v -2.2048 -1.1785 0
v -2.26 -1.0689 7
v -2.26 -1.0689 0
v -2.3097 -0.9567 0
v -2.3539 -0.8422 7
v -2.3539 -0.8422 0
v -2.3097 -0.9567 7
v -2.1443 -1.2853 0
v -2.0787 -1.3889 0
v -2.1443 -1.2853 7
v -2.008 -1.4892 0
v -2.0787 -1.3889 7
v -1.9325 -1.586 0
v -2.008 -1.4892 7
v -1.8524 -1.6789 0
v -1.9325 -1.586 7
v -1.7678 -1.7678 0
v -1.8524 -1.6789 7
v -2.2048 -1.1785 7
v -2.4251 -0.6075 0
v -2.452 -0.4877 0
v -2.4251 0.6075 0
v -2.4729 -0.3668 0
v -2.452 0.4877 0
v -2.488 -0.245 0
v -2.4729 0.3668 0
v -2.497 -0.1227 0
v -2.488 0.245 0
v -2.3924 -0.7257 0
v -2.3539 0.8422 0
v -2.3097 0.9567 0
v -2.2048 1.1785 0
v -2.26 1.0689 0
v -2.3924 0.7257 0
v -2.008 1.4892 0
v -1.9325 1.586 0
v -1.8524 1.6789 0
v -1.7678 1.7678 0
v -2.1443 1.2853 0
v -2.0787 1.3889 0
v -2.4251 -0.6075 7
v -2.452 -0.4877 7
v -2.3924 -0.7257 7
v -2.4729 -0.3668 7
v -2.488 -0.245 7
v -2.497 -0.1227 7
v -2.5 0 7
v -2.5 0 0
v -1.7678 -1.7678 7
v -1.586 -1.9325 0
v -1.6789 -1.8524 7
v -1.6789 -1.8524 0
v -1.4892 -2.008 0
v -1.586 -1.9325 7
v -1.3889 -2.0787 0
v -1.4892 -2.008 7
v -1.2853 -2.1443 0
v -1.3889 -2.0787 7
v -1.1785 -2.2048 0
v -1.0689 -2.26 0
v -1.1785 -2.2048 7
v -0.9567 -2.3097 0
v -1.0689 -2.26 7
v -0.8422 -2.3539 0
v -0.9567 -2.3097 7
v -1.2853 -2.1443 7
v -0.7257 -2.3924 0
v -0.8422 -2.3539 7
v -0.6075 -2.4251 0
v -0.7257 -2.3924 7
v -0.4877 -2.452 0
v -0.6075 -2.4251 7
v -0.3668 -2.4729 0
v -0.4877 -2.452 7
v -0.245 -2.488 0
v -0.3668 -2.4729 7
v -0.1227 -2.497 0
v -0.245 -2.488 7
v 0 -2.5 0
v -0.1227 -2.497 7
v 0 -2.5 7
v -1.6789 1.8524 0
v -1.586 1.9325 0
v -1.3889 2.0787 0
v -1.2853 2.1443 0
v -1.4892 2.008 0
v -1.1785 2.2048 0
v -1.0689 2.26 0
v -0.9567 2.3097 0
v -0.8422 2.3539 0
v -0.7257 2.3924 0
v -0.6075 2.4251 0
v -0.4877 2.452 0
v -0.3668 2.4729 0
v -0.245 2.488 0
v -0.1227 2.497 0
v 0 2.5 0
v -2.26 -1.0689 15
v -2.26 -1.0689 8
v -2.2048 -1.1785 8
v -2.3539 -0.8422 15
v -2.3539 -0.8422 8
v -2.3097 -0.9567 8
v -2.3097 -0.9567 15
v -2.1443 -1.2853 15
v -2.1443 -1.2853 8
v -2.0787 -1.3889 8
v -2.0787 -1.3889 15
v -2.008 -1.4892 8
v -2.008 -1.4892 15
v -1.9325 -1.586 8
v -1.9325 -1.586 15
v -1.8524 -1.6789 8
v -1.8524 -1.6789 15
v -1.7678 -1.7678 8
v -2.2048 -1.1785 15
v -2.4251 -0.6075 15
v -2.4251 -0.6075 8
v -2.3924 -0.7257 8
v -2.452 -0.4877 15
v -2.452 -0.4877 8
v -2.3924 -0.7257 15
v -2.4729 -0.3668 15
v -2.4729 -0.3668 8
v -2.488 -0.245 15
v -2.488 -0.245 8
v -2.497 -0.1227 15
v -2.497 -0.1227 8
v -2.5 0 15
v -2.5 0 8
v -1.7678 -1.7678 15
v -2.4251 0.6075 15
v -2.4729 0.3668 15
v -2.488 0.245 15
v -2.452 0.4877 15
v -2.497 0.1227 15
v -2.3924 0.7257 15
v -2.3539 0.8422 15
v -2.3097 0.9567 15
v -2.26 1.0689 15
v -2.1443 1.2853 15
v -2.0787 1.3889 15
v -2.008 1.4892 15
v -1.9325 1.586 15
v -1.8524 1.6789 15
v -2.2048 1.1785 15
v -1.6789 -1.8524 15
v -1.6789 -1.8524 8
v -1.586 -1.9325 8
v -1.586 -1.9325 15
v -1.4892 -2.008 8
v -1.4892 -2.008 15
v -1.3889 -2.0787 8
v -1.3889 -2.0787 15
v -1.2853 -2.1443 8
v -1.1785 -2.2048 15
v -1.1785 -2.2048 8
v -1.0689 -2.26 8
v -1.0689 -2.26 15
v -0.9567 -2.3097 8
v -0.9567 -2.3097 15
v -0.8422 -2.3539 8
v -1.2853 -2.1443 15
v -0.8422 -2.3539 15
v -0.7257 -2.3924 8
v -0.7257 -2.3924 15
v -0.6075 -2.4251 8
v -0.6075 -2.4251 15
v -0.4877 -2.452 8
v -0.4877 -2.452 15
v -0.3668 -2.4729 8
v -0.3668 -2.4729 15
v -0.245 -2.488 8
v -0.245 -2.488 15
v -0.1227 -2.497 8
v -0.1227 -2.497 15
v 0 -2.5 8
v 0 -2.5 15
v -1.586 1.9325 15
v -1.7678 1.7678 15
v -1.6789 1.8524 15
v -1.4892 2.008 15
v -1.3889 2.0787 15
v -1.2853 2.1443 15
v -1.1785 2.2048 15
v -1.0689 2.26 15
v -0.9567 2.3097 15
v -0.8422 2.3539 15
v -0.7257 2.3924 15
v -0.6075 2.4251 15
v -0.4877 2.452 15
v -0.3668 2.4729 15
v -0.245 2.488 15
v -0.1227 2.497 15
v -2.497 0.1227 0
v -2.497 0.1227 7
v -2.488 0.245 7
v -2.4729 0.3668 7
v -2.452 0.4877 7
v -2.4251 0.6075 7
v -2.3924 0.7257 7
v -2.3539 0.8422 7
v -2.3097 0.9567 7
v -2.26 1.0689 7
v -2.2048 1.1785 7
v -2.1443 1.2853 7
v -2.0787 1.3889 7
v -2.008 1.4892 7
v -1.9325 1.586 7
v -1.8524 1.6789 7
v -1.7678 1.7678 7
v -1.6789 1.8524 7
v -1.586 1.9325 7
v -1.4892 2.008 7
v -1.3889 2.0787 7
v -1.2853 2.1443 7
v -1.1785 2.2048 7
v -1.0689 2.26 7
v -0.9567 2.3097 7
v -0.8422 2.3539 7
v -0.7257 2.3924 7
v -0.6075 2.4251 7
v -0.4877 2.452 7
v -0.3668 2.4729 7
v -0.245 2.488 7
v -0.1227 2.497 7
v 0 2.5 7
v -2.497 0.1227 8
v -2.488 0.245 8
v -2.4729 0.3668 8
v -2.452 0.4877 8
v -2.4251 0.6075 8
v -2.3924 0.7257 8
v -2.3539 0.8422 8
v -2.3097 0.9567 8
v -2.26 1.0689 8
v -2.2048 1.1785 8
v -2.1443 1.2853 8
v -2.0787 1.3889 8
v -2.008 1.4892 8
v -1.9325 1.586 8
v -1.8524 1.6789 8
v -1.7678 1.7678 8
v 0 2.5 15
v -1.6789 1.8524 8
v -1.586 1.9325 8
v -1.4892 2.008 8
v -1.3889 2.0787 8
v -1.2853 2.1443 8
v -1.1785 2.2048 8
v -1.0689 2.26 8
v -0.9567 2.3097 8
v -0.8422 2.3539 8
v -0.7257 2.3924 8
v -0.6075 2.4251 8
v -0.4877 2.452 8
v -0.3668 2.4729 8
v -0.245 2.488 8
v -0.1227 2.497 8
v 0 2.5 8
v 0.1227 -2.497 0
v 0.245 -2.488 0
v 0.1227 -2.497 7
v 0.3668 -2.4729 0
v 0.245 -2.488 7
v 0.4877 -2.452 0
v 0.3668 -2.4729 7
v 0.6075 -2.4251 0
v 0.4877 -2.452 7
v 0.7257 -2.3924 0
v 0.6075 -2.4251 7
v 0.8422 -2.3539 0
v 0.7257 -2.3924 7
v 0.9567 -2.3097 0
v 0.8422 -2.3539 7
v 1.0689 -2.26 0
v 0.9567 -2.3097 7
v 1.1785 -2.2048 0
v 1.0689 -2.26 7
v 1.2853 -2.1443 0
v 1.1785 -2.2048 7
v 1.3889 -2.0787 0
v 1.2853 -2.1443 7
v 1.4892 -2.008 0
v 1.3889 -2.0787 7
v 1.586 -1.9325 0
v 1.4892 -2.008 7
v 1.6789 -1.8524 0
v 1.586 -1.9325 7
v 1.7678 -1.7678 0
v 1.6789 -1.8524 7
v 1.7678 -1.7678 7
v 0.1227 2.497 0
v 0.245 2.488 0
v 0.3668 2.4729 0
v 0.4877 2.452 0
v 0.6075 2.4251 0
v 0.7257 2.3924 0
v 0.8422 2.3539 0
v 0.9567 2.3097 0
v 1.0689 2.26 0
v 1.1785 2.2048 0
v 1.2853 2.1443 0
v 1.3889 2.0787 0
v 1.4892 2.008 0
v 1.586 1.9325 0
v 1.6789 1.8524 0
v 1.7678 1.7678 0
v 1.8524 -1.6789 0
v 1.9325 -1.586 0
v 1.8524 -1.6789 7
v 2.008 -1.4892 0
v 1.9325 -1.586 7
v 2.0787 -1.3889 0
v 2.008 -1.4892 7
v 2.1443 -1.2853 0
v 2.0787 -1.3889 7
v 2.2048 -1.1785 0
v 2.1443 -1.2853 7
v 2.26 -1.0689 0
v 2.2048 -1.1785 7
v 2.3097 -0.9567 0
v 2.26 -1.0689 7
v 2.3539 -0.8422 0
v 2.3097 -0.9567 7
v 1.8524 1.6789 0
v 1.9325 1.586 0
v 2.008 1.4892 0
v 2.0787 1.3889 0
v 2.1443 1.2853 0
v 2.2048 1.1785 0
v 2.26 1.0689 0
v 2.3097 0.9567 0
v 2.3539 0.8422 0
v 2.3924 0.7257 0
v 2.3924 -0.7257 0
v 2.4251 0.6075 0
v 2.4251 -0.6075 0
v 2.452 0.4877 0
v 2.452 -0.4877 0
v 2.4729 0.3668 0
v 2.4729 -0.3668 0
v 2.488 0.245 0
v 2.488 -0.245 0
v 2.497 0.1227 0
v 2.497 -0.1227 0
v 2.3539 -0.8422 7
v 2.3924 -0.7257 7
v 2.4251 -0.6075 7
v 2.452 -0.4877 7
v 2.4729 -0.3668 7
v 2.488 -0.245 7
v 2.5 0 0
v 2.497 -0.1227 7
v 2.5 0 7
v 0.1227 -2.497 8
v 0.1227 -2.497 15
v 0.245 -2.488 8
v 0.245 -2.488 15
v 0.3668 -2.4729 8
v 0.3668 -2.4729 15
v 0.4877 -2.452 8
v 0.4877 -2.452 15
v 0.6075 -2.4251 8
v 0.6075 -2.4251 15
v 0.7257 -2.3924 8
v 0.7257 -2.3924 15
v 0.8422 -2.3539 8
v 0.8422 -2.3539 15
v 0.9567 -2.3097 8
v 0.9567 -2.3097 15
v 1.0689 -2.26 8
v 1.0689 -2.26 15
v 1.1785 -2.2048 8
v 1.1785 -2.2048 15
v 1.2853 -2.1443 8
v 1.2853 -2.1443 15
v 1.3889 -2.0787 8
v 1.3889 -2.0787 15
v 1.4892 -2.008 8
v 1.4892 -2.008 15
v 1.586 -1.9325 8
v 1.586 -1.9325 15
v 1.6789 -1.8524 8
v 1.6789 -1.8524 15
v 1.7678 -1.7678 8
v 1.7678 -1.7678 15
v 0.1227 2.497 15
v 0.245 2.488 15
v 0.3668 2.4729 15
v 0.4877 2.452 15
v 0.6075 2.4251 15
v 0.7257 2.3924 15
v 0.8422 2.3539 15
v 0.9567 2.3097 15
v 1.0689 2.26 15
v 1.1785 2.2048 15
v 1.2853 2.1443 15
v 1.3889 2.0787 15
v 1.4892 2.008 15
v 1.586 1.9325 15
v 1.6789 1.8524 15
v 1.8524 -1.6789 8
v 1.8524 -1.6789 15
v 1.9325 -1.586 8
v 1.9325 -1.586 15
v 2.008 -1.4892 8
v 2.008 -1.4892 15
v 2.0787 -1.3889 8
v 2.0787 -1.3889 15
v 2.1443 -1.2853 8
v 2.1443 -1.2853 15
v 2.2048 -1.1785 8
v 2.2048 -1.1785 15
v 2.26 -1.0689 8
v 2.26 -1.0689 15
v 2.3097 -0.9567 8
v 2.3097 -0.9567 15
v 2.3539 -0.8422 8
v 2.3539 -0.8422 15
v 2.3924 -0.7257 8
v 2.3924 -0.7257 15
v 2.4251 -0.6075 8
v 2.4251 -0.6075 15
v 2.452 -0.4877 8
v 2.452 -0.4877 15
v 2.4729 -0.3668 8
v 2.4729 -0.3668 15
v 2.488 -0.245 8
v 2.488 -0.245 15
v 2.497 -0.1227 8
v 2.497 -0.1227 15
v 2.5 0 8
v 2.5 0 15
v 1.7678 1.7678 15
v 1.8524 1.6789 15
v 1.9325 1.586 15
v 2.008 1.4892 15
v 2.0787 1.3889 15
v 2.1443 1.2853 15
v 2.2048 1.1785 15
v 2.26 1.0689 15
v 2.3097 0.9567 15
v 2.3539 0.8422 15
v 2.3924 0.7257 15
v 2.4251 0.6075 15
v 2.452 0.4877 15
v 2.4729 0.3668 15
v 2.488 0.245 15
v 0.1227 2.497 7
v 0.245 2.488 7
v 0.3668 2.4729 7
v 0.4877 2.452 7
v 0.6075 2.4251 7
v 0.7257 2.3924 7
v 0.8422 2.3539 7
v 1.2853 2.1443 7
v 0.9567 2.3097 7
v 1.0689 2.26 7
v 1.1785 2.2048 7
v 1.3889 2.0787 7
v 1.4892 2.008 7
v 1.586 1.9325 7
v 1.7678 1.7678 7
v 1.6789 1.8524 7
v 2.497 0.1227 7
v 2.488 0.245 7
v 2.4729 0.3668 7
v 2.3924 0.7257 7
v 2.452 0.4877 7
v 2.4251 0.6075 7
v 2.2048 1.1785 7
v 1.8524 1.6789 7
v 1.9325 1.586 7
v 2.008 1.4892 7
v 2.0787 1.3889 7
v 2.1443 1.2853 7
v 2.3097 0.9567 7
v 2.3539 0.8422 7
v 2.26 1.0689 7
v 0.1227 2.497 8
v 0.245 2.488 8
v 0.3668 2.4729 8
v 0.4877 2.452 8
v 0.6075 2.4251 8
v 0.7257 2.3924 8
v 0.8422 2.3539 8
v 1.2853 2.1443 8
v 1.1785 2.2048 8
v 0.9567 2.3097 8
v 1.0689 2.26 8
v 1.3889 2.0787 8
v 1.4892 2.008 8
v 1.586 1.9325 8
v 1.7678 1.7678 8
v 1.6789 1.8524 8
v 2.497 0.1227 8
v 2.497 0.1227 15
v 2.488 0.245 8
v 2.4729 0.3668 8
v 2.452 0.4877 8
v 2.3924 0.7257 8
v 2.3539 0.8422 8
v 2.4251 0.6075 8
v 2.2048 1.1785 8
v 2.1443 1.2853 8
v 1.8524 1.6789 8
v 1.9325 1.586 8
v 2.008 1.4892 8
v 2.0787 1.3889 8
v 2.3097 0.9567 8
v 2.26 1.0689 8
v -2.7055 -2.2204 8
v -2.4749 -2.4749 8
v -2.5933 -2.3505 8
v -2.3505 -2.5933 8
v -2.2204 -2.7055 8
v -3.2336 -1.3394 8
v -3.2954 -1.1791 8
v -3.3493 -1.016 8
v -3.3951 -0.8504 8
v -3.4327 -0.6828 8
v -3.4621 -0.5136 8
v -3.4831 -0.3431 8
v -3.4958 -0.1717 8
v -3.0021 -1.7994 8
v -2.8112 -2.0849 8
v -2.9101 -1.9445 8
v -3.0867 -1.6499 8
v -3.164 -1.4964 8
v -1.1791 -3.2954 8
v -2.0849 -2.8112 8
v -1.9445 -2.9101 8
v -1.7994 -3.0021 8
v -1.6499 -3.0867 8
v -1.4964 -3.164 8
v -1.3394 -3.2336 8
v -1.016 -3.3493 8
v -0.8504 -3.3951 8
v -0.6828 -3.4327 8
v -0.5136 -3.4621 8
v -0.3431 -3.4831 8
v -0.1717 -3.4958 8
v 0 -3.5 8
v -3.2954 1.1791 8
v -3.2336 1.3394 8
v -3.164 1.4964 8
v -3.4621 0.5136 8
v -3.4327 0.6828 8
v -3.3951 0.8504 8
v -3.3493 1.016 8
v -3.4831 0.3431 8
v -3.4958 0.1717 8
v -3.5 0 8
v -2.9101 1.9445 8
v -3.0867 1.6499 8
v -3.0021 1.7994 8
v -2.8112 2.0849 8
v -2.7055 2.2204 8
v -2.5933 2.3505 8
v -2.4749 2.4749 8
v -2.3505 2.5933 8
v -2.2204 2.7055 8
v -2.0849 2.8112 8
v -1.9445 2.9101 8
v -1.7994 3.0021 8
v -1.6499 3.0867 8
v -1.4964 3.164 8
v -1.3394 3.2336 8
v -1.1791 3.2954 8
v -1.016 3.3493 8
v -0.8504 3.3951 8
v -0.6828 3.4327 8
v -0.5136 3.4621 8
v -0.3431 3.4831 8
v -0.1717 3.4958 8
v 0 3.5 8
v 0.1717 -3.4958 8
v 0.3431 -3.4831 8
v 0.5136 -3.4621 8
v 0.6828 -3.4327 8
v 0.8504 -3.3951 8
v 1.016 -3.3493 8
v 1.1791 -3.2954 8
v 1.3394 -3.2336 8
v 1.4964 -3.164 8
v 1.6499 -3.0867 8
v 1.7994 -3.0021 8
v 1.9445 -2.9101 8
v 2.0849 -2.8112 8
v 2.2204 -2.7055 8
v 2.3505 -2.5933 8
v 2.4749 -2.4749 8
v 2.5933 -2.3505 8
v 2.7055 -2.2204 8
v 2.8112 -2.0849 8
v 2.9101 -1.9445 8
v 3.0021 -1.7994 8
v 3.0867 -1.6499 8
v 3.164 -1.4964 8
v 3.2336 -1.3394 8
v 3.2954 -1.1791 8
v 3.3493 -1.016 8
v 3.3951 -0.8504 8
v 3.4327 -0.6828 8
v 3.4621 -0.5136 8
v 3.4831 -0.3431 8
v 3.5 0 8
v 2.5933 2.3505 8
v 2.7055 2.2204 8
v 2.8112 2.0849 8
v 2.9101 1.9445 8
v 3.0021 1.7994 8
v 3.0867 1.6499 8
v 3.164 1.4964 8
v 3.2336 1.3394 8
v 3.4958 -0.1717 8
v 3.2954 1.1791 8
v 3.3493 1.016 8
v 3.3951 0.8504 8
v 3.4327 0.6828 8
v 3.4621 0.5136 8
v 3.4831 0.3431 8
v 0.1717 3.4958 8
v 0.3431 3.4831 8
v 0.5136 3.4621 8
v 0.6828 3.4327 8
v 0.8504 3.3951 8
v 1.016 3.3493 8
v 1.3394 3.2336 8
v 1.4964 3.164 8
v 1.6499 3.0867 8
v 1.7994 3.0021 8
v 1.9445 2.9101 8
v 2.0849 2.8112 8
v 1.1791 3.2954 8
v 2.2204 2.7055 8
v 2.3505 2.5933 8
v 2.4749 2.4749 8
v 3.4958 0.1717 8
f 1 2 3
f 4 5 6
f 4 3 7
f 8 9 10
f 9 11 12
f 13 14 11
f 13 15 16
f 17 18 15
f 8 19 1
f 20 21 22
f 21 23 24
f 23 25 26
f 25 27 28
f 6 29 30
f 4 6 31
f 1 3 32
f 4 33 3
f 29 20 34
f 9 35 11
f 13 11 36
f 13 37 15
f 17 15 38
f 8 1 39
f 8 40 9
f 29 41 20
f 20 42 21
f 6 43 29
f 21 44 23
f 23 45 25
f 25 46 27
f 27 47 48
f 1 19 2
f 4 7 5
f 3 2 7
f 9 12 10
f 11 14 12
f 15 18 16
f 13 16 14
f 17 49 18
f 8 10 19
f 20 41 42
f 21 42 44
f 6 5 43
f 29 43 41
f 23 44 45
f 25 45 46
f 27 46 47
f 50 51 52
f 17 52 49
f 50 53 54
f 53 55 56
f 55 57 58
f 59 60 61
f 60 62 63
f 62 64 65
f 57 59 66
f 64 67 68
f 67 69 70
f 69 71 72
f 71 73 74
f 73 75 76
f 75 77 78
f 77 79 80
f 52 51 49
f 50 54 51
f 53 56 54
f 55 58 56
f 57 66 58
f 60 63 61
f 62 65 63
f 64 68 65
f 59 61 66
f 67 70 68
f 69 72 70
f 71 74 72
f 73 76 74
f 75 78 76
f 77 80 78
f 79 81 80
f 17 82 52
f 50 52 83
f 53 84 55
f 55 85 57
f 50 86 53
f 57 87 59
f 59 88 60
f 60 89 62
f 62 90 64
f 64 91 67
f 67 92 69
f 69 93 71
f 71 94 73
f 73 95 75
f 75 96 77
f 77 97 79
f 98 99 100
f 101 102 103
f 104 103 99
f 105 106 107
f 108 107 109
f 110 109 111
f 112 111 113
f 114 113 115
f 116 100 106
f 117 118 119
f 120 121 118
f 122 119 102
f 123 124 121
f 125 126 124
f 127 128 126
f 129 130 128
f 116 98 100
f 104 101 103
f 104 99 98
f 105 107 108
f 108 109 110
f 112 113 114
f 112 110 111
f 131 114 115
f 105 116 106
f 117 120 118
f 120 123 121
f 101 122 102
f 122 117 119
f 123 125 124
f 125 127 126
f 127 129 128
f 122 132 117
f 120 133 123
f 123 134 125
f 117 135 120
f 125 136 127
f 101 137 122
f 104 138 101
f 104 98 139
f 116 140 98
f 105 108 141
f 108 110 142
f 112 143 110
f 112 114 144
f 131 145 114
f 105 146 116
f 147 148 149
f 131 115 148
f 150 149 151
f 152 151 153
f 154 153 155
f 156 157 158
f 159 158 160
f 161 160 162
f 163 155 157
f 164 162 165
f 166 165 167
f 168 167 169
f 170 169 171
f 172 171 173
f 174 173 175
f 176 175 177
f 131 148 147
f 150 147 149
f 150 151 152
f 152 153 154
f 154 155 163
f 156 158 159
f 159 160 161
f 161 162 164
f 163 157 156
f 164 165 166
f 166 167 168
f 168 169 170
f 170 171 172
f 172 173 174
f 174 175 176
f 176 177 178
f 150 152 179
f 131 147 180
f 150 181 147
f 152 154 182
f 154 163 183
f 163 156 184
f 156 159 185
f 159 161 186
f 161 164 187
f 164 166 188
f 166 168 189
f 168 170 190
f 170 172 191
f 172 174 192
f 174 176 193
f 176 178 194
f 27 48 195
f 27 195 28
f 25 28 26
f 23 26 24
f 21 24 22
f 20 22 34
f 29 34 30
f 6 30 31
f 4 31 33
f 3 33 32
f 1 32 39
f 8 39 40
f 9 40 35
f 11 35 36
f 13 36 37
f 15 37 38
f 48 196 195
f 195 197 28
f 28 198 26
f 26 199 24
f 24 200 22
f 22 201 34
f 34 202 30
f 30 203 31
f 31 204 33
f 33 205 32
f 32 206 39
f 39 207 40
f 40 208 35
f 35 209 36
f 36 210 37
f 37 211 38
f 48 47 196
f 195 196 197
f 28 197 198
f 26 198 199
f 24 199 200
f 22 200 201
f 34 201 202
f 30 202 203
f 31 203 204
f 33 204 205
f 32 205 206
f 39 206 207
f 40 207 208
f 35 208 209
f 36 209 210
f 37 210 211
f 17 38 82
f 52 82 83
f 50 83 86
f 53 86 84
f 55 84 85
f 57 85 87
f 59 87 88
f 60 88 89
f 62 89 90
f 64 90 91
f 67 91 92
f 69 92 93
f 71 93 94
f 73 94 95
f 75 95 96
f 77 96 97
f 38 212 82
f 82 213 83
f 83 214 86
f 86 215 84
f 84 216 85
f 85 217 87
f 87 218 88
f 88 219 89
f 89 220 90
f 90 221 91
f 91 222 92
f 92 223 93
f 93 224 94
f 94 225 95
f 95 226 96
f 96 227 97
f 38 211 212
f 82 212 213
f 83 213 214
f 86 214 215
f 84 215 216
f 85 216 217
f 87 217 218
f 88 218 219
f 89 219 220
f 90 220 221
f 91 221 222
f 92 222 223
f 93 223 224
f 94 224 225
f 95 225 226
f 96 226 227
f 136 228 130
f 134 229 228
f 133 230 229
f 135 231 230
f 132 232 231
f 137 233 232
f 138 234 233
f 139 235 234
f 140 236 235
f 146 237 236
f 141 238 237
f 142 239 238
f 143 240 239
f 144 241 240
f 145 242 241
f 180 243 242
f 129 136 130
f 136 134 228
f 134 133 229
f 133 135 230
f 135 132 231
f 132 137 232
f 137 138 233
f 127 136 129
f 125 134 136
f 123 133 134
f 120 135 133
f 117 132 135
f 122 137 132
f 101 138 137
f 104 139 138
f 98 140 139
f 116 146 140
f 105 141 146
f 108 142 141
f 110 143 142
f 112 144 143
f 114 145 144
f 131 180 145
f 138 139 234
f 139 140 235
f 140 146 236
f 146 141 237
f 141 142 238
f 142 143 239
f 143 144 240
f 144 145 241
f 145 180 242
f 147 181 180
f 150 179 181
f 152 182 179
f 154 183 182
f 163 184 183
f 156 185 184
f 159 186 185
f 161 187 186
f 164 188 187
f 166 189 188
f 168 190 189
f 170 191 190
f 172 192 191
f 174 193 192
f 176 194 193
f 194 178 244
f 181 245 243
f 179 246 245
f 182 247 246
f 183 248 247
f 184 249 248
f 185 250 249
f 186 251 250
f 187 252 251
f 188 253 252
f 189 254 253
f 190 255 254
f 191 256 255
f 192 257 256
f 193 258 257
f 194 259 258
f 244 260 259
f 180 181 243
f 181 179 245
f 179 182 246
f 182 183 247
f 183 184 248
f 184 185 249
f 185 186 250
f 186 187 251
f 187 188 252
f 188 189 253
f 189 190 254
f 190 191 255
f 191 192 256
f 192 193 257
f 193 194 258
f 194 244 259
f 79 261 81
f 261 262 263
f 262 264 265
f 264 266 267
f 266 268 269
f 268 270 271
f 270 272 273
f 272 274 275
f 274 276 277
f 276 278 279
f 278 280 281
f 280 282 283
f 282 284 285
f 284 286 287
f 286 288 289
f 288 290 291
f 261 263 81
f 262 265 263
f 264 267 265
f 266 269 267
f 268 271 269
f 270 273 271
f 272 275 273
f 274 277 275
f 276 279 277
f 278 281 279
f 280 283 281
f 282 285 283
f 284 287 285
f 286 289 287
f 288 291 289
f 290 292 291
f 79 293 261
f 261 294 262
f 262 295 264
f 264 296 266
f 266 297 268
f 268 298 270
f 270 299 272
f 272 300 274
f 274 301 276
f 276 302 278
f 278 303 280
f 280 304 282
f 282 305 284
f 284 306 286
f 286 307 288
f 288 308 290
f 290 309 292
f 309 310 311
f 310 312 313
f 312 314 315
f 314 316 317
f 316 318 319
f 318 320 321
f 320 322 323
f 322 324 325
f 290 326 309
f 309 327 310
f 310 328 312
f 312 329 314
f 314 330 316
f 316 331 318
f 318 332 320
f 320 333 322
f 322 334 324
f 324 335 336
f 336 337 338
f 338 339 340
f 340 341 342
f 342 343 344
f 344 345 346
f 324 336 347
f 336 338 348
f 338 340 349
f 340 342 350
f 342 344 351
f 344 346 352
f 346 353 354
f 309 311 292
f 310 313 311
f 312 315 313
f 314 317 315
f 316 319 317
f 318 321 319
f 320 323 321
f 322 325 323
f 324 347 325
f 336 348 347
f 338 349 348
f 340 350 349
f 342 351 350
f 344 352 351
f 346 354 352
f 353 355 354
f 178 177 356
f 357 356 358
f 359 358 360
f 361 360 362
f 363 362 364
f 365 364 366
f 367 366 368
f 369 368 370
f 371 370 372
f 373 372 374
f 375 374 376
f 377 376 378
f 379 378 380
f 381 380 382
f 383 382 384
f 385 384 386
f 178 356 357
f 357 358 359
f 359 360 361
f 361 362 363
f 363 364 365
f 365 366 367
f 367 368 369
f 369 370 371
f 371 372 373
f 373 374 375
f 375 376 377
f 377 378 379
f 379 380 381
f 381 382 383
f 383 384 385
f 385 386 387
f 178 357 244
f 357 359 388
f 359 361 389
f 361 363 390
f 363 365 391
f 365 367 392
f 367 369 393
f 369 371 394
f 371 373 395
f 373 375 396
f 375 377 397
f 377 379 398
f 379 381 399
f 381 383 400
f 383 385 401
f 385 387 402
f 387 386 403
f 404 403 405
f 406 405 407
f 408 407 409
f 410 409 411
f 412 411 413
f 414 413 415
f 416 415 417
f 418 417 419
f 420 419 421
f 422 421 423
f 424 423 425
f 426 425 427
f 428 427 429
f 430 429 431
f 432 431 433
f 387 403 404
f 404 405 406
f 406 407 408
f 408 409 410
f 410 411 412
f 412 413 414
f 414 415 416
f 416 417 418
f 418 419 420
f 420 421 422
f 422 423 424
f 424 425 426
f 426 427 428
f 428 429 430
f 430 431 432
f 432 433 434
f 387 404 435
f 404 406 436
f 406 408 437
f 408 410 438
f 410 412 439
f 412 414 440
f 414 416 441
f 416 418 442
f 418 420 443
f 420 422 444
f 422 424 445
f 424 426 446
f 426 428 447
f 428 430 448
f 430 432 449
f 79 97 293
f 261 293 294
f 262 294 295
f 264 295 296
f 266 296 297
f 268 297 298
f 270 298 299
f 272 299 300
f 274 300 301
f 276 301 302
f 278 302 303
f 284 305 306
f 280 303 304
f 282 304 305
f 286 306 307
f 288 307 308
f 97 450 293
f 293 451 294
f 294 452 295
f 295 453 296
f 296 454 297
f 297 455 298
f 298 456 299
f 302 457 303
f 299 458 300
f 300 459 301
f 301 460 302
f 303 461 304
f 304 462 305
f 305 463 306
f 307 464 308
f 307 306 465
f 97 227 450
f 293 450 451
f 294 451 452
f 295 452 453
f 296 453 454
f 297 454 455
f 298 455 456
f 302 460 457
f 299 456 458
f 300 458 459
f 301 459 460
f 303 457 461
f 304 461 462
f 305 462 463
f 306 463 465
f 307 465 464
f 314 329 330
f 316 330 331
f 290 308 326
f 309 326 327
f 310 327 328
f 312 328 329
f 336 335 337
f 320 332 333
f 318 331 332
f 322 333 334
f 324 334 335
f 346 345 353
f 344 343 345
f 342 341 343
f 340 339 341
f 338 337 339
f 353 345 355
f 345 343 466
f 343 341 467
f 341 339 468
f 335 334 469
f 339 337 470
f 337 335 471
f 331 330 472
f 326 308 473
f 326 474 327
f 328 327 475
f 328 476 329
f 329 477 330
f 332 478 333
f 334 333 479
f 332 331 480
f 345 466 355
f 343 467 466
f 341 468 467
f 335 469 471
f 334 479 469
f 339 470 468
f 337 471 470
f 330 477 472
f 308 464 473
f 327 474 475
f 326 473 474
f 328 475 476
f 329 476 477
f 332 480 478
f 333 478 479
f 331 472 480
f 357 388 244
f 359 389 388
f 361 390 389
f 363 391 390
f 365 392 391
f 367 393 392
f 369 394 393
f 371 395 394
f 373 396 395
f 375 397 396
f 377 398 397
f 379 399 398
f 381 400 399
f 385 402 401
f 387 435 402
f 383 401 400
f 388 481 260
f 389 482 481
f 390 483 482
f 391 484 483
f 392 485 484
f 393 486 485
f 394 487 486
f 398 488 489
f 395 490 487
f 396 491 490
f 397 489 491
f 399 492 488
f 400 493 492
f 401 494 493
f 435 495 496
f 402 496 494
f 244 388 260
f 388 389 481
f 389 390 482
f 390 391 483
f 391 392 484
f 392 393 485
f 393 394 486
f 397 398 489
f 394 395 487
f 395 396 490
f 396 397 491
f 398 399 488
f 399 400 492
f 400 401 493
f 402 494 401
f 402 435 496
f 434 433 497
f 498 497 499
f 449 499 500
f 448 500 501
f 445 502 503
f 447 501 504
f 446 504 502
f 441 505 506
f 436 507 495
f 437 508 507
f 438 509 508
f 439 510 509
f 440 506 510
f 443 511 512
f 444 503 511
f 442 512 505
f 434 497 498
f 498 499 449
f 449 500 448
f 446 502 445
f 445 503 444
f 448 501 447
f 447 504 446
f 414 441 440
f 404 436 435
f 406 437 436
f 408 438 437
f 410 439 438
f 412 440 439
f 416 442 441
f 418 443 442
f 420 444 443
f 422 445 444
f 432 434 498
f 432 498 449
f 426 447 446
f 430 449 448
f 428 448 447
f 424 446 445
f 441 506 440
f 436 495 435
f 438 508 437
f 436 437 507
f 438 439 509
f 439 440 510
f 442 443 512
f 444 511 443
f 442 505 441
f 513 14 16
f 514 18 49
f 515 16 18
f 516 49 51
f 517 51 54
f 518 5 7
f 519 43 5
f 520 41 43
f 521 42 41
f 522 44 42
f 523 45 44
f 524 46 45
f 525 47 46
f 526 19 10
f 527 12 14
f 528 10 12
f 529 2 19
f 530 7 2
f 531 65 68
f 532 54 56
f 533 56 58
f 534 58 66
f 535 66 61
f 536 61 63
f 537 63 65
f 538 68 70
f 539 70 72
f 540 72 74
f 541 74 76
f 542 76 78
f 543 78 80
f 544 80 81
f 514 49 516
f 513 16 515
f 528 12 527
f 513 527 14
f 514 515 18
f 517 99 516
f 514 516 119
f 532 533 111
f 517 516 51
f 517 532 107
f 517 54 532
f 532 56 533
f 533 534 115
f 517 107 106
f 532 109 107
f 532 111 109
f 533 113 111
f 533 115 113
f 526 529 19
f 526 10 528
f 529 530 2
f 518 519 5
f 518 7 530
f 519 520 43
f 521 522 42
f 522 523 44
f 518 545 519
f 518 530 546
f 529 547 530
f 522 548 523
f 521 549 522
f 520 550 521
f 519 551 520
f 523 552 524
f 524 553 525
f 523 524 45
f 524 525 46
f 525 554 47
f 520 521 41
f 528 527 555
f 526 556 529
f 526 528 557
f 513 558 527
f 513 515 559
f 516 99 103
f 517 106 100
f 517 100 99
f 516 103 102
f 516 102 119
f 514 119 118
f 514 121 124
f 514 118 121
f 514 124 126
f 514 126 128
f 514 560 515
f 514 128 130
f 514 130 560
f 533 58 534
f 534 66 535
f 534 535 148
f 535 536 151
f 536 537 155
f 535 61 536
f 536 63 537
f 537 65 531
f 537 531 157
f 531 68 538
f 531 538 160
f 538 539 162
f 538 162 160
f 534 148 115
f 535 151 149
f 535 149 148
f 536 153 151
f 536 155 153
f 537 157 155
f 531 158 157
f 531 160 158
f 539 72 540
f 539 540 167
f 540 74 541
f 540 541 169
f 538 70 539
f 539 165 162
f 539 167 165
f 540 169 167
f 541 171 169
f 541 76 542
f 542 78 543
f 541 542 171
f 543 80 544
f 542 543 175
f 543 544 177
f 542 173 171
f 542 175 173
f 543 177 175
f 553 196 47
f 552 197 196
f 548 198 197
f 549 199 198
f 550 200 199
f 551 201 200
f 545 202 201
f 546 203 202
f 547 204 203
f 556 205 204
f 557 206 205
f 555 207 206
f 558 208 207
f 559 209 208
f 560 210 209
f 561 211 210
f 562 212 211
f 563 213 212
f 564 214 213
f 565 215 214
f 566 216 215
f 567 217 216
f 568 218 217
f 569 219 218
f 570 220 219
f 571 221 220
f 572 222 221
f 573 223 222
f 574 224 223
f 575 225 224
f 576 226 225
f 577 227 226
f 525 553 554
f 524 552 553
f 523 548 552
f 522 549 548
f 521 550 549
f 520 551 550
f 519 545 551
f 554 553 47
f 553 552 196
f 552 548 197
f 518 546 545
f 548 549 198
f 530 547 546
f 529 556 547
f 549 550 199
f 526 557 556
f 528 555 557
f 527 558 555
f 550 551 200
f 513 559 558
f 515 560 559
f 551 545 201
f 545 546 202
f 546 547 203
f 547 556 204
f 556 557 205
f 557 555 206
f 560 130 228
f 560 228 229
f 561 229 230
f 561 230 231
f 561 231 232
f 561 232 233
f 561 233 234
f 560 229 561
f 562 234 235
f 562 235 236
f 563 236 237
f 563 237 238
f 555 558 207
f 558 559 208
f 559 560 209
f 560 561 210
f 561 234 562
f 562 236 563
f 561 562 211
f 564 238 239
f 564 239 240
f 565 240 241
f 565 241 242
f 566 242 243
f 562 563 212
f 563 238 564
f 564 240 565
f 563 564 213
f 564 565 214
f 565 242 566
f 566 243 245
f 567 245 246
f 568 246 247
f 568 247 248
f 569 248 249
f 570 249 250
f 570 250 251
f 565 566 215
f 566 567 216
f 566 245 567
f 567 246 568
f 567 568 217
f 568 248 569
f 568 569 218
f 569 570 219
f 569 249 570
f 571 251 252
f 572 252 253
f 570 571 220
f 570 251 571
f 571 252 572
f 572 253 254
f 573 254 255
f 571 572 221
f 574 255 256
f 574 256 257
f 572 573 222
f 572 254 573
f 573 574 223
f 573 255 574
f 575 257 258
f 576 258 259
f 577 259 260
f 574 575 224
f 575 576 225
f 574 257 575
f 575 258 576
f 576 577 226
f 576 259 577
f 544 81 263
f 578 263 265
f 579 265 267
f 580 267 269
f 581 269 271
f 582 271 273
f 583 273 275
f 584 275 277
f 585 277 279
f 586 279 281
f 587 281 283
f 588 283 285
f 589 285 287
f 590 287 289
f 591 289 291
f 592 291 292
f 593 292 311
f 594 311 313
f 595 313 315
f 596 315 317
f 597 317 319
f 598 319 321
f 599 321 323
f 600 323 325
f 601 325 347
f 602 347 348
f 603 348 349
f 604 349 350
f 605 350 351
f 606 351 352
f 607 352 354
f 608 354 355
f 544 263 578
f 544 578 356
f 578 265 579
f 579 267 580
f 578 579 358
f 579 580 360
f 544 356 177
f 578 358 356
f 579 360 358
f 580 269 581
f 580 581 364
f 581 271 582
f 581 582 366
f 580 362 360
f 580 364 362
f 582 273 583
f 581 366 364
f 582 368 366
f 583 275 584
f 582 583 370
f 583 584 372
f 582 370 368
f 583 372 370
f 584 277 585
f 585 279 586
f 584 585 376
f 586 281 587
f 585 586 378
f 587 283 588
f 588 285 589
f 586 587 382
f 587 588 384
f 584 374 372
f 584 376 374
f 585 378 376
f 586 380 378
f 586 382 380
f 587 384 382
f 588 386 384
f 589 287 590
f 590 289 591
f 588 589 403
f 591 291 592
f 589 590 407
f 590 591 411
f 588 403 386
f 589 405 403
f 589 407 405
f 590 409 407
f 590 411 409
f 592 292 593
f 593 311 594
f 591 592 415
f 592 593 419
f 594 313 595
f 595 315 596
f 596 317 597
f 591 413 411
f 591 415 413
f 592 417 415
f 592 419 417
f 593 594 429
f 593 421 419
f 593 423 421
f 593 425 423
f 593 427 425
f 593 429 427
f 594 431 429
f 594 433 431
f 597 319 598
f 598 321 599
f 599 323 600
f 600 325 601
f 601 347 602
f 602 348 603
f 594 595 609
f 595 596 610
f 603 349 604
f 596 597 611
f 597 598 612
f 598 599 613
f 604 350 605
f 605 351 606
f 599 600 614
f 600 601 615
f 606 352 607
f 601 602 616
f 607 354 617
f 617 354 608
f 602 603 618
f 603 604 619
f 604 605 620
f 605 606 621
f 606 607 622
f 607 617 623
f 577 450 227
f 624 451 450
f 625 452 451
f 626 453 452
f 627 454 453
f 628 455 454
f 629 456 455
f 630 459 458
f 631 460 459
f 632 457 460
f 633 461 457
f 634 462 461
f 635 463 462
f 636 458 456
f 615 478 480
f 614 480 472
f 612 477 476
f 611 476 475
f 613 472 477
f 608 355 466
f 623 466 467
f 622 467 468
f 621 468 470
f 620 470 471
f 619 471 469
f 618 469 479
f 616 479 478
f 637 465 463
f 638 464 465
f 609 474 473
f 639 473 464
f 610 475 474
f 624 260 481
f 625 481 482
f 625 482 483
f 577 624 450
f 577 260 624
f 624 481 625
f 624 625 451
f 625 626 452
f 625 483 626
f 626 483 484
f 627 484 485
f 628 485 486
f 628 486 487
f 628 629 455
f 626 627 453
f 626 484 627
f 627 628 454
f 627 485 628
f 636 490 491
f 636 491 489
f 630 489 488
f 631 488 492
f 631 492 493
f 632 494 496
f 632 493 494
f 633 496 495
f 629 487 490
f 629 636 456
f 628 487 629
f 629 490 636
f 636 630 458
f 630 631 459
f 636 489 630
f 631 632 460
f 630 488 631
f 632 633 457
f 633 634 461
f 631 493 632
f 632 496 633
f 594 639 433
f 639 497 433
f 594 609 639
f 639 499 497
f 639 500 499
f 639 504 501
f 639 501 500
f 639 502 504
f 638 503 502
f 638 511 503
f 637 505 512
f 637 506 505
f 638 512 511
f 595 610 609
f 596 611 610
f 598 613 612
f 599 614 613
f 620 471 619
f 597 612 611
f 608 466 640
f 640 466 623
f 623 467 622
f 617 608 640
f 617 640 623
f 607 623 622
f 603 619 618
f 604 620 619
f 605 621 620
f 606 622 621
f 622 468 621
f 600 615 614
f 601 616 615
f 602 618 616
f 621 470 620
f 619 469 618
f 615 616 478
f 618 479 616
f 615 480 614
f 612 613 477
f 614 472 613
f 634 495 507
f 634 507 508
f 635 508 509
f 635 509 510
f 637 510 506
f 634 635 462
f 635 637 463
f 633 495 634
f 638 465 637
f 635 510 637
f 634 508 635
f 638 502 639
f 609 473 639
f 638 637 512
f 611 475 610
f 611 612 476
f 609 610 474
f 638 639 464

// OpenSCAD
$fn = 128;

cylinder(d = 5, h = 15);

translate([0,0,7]) cylinder(d1 = 5, d2 = 7, h = 1);
